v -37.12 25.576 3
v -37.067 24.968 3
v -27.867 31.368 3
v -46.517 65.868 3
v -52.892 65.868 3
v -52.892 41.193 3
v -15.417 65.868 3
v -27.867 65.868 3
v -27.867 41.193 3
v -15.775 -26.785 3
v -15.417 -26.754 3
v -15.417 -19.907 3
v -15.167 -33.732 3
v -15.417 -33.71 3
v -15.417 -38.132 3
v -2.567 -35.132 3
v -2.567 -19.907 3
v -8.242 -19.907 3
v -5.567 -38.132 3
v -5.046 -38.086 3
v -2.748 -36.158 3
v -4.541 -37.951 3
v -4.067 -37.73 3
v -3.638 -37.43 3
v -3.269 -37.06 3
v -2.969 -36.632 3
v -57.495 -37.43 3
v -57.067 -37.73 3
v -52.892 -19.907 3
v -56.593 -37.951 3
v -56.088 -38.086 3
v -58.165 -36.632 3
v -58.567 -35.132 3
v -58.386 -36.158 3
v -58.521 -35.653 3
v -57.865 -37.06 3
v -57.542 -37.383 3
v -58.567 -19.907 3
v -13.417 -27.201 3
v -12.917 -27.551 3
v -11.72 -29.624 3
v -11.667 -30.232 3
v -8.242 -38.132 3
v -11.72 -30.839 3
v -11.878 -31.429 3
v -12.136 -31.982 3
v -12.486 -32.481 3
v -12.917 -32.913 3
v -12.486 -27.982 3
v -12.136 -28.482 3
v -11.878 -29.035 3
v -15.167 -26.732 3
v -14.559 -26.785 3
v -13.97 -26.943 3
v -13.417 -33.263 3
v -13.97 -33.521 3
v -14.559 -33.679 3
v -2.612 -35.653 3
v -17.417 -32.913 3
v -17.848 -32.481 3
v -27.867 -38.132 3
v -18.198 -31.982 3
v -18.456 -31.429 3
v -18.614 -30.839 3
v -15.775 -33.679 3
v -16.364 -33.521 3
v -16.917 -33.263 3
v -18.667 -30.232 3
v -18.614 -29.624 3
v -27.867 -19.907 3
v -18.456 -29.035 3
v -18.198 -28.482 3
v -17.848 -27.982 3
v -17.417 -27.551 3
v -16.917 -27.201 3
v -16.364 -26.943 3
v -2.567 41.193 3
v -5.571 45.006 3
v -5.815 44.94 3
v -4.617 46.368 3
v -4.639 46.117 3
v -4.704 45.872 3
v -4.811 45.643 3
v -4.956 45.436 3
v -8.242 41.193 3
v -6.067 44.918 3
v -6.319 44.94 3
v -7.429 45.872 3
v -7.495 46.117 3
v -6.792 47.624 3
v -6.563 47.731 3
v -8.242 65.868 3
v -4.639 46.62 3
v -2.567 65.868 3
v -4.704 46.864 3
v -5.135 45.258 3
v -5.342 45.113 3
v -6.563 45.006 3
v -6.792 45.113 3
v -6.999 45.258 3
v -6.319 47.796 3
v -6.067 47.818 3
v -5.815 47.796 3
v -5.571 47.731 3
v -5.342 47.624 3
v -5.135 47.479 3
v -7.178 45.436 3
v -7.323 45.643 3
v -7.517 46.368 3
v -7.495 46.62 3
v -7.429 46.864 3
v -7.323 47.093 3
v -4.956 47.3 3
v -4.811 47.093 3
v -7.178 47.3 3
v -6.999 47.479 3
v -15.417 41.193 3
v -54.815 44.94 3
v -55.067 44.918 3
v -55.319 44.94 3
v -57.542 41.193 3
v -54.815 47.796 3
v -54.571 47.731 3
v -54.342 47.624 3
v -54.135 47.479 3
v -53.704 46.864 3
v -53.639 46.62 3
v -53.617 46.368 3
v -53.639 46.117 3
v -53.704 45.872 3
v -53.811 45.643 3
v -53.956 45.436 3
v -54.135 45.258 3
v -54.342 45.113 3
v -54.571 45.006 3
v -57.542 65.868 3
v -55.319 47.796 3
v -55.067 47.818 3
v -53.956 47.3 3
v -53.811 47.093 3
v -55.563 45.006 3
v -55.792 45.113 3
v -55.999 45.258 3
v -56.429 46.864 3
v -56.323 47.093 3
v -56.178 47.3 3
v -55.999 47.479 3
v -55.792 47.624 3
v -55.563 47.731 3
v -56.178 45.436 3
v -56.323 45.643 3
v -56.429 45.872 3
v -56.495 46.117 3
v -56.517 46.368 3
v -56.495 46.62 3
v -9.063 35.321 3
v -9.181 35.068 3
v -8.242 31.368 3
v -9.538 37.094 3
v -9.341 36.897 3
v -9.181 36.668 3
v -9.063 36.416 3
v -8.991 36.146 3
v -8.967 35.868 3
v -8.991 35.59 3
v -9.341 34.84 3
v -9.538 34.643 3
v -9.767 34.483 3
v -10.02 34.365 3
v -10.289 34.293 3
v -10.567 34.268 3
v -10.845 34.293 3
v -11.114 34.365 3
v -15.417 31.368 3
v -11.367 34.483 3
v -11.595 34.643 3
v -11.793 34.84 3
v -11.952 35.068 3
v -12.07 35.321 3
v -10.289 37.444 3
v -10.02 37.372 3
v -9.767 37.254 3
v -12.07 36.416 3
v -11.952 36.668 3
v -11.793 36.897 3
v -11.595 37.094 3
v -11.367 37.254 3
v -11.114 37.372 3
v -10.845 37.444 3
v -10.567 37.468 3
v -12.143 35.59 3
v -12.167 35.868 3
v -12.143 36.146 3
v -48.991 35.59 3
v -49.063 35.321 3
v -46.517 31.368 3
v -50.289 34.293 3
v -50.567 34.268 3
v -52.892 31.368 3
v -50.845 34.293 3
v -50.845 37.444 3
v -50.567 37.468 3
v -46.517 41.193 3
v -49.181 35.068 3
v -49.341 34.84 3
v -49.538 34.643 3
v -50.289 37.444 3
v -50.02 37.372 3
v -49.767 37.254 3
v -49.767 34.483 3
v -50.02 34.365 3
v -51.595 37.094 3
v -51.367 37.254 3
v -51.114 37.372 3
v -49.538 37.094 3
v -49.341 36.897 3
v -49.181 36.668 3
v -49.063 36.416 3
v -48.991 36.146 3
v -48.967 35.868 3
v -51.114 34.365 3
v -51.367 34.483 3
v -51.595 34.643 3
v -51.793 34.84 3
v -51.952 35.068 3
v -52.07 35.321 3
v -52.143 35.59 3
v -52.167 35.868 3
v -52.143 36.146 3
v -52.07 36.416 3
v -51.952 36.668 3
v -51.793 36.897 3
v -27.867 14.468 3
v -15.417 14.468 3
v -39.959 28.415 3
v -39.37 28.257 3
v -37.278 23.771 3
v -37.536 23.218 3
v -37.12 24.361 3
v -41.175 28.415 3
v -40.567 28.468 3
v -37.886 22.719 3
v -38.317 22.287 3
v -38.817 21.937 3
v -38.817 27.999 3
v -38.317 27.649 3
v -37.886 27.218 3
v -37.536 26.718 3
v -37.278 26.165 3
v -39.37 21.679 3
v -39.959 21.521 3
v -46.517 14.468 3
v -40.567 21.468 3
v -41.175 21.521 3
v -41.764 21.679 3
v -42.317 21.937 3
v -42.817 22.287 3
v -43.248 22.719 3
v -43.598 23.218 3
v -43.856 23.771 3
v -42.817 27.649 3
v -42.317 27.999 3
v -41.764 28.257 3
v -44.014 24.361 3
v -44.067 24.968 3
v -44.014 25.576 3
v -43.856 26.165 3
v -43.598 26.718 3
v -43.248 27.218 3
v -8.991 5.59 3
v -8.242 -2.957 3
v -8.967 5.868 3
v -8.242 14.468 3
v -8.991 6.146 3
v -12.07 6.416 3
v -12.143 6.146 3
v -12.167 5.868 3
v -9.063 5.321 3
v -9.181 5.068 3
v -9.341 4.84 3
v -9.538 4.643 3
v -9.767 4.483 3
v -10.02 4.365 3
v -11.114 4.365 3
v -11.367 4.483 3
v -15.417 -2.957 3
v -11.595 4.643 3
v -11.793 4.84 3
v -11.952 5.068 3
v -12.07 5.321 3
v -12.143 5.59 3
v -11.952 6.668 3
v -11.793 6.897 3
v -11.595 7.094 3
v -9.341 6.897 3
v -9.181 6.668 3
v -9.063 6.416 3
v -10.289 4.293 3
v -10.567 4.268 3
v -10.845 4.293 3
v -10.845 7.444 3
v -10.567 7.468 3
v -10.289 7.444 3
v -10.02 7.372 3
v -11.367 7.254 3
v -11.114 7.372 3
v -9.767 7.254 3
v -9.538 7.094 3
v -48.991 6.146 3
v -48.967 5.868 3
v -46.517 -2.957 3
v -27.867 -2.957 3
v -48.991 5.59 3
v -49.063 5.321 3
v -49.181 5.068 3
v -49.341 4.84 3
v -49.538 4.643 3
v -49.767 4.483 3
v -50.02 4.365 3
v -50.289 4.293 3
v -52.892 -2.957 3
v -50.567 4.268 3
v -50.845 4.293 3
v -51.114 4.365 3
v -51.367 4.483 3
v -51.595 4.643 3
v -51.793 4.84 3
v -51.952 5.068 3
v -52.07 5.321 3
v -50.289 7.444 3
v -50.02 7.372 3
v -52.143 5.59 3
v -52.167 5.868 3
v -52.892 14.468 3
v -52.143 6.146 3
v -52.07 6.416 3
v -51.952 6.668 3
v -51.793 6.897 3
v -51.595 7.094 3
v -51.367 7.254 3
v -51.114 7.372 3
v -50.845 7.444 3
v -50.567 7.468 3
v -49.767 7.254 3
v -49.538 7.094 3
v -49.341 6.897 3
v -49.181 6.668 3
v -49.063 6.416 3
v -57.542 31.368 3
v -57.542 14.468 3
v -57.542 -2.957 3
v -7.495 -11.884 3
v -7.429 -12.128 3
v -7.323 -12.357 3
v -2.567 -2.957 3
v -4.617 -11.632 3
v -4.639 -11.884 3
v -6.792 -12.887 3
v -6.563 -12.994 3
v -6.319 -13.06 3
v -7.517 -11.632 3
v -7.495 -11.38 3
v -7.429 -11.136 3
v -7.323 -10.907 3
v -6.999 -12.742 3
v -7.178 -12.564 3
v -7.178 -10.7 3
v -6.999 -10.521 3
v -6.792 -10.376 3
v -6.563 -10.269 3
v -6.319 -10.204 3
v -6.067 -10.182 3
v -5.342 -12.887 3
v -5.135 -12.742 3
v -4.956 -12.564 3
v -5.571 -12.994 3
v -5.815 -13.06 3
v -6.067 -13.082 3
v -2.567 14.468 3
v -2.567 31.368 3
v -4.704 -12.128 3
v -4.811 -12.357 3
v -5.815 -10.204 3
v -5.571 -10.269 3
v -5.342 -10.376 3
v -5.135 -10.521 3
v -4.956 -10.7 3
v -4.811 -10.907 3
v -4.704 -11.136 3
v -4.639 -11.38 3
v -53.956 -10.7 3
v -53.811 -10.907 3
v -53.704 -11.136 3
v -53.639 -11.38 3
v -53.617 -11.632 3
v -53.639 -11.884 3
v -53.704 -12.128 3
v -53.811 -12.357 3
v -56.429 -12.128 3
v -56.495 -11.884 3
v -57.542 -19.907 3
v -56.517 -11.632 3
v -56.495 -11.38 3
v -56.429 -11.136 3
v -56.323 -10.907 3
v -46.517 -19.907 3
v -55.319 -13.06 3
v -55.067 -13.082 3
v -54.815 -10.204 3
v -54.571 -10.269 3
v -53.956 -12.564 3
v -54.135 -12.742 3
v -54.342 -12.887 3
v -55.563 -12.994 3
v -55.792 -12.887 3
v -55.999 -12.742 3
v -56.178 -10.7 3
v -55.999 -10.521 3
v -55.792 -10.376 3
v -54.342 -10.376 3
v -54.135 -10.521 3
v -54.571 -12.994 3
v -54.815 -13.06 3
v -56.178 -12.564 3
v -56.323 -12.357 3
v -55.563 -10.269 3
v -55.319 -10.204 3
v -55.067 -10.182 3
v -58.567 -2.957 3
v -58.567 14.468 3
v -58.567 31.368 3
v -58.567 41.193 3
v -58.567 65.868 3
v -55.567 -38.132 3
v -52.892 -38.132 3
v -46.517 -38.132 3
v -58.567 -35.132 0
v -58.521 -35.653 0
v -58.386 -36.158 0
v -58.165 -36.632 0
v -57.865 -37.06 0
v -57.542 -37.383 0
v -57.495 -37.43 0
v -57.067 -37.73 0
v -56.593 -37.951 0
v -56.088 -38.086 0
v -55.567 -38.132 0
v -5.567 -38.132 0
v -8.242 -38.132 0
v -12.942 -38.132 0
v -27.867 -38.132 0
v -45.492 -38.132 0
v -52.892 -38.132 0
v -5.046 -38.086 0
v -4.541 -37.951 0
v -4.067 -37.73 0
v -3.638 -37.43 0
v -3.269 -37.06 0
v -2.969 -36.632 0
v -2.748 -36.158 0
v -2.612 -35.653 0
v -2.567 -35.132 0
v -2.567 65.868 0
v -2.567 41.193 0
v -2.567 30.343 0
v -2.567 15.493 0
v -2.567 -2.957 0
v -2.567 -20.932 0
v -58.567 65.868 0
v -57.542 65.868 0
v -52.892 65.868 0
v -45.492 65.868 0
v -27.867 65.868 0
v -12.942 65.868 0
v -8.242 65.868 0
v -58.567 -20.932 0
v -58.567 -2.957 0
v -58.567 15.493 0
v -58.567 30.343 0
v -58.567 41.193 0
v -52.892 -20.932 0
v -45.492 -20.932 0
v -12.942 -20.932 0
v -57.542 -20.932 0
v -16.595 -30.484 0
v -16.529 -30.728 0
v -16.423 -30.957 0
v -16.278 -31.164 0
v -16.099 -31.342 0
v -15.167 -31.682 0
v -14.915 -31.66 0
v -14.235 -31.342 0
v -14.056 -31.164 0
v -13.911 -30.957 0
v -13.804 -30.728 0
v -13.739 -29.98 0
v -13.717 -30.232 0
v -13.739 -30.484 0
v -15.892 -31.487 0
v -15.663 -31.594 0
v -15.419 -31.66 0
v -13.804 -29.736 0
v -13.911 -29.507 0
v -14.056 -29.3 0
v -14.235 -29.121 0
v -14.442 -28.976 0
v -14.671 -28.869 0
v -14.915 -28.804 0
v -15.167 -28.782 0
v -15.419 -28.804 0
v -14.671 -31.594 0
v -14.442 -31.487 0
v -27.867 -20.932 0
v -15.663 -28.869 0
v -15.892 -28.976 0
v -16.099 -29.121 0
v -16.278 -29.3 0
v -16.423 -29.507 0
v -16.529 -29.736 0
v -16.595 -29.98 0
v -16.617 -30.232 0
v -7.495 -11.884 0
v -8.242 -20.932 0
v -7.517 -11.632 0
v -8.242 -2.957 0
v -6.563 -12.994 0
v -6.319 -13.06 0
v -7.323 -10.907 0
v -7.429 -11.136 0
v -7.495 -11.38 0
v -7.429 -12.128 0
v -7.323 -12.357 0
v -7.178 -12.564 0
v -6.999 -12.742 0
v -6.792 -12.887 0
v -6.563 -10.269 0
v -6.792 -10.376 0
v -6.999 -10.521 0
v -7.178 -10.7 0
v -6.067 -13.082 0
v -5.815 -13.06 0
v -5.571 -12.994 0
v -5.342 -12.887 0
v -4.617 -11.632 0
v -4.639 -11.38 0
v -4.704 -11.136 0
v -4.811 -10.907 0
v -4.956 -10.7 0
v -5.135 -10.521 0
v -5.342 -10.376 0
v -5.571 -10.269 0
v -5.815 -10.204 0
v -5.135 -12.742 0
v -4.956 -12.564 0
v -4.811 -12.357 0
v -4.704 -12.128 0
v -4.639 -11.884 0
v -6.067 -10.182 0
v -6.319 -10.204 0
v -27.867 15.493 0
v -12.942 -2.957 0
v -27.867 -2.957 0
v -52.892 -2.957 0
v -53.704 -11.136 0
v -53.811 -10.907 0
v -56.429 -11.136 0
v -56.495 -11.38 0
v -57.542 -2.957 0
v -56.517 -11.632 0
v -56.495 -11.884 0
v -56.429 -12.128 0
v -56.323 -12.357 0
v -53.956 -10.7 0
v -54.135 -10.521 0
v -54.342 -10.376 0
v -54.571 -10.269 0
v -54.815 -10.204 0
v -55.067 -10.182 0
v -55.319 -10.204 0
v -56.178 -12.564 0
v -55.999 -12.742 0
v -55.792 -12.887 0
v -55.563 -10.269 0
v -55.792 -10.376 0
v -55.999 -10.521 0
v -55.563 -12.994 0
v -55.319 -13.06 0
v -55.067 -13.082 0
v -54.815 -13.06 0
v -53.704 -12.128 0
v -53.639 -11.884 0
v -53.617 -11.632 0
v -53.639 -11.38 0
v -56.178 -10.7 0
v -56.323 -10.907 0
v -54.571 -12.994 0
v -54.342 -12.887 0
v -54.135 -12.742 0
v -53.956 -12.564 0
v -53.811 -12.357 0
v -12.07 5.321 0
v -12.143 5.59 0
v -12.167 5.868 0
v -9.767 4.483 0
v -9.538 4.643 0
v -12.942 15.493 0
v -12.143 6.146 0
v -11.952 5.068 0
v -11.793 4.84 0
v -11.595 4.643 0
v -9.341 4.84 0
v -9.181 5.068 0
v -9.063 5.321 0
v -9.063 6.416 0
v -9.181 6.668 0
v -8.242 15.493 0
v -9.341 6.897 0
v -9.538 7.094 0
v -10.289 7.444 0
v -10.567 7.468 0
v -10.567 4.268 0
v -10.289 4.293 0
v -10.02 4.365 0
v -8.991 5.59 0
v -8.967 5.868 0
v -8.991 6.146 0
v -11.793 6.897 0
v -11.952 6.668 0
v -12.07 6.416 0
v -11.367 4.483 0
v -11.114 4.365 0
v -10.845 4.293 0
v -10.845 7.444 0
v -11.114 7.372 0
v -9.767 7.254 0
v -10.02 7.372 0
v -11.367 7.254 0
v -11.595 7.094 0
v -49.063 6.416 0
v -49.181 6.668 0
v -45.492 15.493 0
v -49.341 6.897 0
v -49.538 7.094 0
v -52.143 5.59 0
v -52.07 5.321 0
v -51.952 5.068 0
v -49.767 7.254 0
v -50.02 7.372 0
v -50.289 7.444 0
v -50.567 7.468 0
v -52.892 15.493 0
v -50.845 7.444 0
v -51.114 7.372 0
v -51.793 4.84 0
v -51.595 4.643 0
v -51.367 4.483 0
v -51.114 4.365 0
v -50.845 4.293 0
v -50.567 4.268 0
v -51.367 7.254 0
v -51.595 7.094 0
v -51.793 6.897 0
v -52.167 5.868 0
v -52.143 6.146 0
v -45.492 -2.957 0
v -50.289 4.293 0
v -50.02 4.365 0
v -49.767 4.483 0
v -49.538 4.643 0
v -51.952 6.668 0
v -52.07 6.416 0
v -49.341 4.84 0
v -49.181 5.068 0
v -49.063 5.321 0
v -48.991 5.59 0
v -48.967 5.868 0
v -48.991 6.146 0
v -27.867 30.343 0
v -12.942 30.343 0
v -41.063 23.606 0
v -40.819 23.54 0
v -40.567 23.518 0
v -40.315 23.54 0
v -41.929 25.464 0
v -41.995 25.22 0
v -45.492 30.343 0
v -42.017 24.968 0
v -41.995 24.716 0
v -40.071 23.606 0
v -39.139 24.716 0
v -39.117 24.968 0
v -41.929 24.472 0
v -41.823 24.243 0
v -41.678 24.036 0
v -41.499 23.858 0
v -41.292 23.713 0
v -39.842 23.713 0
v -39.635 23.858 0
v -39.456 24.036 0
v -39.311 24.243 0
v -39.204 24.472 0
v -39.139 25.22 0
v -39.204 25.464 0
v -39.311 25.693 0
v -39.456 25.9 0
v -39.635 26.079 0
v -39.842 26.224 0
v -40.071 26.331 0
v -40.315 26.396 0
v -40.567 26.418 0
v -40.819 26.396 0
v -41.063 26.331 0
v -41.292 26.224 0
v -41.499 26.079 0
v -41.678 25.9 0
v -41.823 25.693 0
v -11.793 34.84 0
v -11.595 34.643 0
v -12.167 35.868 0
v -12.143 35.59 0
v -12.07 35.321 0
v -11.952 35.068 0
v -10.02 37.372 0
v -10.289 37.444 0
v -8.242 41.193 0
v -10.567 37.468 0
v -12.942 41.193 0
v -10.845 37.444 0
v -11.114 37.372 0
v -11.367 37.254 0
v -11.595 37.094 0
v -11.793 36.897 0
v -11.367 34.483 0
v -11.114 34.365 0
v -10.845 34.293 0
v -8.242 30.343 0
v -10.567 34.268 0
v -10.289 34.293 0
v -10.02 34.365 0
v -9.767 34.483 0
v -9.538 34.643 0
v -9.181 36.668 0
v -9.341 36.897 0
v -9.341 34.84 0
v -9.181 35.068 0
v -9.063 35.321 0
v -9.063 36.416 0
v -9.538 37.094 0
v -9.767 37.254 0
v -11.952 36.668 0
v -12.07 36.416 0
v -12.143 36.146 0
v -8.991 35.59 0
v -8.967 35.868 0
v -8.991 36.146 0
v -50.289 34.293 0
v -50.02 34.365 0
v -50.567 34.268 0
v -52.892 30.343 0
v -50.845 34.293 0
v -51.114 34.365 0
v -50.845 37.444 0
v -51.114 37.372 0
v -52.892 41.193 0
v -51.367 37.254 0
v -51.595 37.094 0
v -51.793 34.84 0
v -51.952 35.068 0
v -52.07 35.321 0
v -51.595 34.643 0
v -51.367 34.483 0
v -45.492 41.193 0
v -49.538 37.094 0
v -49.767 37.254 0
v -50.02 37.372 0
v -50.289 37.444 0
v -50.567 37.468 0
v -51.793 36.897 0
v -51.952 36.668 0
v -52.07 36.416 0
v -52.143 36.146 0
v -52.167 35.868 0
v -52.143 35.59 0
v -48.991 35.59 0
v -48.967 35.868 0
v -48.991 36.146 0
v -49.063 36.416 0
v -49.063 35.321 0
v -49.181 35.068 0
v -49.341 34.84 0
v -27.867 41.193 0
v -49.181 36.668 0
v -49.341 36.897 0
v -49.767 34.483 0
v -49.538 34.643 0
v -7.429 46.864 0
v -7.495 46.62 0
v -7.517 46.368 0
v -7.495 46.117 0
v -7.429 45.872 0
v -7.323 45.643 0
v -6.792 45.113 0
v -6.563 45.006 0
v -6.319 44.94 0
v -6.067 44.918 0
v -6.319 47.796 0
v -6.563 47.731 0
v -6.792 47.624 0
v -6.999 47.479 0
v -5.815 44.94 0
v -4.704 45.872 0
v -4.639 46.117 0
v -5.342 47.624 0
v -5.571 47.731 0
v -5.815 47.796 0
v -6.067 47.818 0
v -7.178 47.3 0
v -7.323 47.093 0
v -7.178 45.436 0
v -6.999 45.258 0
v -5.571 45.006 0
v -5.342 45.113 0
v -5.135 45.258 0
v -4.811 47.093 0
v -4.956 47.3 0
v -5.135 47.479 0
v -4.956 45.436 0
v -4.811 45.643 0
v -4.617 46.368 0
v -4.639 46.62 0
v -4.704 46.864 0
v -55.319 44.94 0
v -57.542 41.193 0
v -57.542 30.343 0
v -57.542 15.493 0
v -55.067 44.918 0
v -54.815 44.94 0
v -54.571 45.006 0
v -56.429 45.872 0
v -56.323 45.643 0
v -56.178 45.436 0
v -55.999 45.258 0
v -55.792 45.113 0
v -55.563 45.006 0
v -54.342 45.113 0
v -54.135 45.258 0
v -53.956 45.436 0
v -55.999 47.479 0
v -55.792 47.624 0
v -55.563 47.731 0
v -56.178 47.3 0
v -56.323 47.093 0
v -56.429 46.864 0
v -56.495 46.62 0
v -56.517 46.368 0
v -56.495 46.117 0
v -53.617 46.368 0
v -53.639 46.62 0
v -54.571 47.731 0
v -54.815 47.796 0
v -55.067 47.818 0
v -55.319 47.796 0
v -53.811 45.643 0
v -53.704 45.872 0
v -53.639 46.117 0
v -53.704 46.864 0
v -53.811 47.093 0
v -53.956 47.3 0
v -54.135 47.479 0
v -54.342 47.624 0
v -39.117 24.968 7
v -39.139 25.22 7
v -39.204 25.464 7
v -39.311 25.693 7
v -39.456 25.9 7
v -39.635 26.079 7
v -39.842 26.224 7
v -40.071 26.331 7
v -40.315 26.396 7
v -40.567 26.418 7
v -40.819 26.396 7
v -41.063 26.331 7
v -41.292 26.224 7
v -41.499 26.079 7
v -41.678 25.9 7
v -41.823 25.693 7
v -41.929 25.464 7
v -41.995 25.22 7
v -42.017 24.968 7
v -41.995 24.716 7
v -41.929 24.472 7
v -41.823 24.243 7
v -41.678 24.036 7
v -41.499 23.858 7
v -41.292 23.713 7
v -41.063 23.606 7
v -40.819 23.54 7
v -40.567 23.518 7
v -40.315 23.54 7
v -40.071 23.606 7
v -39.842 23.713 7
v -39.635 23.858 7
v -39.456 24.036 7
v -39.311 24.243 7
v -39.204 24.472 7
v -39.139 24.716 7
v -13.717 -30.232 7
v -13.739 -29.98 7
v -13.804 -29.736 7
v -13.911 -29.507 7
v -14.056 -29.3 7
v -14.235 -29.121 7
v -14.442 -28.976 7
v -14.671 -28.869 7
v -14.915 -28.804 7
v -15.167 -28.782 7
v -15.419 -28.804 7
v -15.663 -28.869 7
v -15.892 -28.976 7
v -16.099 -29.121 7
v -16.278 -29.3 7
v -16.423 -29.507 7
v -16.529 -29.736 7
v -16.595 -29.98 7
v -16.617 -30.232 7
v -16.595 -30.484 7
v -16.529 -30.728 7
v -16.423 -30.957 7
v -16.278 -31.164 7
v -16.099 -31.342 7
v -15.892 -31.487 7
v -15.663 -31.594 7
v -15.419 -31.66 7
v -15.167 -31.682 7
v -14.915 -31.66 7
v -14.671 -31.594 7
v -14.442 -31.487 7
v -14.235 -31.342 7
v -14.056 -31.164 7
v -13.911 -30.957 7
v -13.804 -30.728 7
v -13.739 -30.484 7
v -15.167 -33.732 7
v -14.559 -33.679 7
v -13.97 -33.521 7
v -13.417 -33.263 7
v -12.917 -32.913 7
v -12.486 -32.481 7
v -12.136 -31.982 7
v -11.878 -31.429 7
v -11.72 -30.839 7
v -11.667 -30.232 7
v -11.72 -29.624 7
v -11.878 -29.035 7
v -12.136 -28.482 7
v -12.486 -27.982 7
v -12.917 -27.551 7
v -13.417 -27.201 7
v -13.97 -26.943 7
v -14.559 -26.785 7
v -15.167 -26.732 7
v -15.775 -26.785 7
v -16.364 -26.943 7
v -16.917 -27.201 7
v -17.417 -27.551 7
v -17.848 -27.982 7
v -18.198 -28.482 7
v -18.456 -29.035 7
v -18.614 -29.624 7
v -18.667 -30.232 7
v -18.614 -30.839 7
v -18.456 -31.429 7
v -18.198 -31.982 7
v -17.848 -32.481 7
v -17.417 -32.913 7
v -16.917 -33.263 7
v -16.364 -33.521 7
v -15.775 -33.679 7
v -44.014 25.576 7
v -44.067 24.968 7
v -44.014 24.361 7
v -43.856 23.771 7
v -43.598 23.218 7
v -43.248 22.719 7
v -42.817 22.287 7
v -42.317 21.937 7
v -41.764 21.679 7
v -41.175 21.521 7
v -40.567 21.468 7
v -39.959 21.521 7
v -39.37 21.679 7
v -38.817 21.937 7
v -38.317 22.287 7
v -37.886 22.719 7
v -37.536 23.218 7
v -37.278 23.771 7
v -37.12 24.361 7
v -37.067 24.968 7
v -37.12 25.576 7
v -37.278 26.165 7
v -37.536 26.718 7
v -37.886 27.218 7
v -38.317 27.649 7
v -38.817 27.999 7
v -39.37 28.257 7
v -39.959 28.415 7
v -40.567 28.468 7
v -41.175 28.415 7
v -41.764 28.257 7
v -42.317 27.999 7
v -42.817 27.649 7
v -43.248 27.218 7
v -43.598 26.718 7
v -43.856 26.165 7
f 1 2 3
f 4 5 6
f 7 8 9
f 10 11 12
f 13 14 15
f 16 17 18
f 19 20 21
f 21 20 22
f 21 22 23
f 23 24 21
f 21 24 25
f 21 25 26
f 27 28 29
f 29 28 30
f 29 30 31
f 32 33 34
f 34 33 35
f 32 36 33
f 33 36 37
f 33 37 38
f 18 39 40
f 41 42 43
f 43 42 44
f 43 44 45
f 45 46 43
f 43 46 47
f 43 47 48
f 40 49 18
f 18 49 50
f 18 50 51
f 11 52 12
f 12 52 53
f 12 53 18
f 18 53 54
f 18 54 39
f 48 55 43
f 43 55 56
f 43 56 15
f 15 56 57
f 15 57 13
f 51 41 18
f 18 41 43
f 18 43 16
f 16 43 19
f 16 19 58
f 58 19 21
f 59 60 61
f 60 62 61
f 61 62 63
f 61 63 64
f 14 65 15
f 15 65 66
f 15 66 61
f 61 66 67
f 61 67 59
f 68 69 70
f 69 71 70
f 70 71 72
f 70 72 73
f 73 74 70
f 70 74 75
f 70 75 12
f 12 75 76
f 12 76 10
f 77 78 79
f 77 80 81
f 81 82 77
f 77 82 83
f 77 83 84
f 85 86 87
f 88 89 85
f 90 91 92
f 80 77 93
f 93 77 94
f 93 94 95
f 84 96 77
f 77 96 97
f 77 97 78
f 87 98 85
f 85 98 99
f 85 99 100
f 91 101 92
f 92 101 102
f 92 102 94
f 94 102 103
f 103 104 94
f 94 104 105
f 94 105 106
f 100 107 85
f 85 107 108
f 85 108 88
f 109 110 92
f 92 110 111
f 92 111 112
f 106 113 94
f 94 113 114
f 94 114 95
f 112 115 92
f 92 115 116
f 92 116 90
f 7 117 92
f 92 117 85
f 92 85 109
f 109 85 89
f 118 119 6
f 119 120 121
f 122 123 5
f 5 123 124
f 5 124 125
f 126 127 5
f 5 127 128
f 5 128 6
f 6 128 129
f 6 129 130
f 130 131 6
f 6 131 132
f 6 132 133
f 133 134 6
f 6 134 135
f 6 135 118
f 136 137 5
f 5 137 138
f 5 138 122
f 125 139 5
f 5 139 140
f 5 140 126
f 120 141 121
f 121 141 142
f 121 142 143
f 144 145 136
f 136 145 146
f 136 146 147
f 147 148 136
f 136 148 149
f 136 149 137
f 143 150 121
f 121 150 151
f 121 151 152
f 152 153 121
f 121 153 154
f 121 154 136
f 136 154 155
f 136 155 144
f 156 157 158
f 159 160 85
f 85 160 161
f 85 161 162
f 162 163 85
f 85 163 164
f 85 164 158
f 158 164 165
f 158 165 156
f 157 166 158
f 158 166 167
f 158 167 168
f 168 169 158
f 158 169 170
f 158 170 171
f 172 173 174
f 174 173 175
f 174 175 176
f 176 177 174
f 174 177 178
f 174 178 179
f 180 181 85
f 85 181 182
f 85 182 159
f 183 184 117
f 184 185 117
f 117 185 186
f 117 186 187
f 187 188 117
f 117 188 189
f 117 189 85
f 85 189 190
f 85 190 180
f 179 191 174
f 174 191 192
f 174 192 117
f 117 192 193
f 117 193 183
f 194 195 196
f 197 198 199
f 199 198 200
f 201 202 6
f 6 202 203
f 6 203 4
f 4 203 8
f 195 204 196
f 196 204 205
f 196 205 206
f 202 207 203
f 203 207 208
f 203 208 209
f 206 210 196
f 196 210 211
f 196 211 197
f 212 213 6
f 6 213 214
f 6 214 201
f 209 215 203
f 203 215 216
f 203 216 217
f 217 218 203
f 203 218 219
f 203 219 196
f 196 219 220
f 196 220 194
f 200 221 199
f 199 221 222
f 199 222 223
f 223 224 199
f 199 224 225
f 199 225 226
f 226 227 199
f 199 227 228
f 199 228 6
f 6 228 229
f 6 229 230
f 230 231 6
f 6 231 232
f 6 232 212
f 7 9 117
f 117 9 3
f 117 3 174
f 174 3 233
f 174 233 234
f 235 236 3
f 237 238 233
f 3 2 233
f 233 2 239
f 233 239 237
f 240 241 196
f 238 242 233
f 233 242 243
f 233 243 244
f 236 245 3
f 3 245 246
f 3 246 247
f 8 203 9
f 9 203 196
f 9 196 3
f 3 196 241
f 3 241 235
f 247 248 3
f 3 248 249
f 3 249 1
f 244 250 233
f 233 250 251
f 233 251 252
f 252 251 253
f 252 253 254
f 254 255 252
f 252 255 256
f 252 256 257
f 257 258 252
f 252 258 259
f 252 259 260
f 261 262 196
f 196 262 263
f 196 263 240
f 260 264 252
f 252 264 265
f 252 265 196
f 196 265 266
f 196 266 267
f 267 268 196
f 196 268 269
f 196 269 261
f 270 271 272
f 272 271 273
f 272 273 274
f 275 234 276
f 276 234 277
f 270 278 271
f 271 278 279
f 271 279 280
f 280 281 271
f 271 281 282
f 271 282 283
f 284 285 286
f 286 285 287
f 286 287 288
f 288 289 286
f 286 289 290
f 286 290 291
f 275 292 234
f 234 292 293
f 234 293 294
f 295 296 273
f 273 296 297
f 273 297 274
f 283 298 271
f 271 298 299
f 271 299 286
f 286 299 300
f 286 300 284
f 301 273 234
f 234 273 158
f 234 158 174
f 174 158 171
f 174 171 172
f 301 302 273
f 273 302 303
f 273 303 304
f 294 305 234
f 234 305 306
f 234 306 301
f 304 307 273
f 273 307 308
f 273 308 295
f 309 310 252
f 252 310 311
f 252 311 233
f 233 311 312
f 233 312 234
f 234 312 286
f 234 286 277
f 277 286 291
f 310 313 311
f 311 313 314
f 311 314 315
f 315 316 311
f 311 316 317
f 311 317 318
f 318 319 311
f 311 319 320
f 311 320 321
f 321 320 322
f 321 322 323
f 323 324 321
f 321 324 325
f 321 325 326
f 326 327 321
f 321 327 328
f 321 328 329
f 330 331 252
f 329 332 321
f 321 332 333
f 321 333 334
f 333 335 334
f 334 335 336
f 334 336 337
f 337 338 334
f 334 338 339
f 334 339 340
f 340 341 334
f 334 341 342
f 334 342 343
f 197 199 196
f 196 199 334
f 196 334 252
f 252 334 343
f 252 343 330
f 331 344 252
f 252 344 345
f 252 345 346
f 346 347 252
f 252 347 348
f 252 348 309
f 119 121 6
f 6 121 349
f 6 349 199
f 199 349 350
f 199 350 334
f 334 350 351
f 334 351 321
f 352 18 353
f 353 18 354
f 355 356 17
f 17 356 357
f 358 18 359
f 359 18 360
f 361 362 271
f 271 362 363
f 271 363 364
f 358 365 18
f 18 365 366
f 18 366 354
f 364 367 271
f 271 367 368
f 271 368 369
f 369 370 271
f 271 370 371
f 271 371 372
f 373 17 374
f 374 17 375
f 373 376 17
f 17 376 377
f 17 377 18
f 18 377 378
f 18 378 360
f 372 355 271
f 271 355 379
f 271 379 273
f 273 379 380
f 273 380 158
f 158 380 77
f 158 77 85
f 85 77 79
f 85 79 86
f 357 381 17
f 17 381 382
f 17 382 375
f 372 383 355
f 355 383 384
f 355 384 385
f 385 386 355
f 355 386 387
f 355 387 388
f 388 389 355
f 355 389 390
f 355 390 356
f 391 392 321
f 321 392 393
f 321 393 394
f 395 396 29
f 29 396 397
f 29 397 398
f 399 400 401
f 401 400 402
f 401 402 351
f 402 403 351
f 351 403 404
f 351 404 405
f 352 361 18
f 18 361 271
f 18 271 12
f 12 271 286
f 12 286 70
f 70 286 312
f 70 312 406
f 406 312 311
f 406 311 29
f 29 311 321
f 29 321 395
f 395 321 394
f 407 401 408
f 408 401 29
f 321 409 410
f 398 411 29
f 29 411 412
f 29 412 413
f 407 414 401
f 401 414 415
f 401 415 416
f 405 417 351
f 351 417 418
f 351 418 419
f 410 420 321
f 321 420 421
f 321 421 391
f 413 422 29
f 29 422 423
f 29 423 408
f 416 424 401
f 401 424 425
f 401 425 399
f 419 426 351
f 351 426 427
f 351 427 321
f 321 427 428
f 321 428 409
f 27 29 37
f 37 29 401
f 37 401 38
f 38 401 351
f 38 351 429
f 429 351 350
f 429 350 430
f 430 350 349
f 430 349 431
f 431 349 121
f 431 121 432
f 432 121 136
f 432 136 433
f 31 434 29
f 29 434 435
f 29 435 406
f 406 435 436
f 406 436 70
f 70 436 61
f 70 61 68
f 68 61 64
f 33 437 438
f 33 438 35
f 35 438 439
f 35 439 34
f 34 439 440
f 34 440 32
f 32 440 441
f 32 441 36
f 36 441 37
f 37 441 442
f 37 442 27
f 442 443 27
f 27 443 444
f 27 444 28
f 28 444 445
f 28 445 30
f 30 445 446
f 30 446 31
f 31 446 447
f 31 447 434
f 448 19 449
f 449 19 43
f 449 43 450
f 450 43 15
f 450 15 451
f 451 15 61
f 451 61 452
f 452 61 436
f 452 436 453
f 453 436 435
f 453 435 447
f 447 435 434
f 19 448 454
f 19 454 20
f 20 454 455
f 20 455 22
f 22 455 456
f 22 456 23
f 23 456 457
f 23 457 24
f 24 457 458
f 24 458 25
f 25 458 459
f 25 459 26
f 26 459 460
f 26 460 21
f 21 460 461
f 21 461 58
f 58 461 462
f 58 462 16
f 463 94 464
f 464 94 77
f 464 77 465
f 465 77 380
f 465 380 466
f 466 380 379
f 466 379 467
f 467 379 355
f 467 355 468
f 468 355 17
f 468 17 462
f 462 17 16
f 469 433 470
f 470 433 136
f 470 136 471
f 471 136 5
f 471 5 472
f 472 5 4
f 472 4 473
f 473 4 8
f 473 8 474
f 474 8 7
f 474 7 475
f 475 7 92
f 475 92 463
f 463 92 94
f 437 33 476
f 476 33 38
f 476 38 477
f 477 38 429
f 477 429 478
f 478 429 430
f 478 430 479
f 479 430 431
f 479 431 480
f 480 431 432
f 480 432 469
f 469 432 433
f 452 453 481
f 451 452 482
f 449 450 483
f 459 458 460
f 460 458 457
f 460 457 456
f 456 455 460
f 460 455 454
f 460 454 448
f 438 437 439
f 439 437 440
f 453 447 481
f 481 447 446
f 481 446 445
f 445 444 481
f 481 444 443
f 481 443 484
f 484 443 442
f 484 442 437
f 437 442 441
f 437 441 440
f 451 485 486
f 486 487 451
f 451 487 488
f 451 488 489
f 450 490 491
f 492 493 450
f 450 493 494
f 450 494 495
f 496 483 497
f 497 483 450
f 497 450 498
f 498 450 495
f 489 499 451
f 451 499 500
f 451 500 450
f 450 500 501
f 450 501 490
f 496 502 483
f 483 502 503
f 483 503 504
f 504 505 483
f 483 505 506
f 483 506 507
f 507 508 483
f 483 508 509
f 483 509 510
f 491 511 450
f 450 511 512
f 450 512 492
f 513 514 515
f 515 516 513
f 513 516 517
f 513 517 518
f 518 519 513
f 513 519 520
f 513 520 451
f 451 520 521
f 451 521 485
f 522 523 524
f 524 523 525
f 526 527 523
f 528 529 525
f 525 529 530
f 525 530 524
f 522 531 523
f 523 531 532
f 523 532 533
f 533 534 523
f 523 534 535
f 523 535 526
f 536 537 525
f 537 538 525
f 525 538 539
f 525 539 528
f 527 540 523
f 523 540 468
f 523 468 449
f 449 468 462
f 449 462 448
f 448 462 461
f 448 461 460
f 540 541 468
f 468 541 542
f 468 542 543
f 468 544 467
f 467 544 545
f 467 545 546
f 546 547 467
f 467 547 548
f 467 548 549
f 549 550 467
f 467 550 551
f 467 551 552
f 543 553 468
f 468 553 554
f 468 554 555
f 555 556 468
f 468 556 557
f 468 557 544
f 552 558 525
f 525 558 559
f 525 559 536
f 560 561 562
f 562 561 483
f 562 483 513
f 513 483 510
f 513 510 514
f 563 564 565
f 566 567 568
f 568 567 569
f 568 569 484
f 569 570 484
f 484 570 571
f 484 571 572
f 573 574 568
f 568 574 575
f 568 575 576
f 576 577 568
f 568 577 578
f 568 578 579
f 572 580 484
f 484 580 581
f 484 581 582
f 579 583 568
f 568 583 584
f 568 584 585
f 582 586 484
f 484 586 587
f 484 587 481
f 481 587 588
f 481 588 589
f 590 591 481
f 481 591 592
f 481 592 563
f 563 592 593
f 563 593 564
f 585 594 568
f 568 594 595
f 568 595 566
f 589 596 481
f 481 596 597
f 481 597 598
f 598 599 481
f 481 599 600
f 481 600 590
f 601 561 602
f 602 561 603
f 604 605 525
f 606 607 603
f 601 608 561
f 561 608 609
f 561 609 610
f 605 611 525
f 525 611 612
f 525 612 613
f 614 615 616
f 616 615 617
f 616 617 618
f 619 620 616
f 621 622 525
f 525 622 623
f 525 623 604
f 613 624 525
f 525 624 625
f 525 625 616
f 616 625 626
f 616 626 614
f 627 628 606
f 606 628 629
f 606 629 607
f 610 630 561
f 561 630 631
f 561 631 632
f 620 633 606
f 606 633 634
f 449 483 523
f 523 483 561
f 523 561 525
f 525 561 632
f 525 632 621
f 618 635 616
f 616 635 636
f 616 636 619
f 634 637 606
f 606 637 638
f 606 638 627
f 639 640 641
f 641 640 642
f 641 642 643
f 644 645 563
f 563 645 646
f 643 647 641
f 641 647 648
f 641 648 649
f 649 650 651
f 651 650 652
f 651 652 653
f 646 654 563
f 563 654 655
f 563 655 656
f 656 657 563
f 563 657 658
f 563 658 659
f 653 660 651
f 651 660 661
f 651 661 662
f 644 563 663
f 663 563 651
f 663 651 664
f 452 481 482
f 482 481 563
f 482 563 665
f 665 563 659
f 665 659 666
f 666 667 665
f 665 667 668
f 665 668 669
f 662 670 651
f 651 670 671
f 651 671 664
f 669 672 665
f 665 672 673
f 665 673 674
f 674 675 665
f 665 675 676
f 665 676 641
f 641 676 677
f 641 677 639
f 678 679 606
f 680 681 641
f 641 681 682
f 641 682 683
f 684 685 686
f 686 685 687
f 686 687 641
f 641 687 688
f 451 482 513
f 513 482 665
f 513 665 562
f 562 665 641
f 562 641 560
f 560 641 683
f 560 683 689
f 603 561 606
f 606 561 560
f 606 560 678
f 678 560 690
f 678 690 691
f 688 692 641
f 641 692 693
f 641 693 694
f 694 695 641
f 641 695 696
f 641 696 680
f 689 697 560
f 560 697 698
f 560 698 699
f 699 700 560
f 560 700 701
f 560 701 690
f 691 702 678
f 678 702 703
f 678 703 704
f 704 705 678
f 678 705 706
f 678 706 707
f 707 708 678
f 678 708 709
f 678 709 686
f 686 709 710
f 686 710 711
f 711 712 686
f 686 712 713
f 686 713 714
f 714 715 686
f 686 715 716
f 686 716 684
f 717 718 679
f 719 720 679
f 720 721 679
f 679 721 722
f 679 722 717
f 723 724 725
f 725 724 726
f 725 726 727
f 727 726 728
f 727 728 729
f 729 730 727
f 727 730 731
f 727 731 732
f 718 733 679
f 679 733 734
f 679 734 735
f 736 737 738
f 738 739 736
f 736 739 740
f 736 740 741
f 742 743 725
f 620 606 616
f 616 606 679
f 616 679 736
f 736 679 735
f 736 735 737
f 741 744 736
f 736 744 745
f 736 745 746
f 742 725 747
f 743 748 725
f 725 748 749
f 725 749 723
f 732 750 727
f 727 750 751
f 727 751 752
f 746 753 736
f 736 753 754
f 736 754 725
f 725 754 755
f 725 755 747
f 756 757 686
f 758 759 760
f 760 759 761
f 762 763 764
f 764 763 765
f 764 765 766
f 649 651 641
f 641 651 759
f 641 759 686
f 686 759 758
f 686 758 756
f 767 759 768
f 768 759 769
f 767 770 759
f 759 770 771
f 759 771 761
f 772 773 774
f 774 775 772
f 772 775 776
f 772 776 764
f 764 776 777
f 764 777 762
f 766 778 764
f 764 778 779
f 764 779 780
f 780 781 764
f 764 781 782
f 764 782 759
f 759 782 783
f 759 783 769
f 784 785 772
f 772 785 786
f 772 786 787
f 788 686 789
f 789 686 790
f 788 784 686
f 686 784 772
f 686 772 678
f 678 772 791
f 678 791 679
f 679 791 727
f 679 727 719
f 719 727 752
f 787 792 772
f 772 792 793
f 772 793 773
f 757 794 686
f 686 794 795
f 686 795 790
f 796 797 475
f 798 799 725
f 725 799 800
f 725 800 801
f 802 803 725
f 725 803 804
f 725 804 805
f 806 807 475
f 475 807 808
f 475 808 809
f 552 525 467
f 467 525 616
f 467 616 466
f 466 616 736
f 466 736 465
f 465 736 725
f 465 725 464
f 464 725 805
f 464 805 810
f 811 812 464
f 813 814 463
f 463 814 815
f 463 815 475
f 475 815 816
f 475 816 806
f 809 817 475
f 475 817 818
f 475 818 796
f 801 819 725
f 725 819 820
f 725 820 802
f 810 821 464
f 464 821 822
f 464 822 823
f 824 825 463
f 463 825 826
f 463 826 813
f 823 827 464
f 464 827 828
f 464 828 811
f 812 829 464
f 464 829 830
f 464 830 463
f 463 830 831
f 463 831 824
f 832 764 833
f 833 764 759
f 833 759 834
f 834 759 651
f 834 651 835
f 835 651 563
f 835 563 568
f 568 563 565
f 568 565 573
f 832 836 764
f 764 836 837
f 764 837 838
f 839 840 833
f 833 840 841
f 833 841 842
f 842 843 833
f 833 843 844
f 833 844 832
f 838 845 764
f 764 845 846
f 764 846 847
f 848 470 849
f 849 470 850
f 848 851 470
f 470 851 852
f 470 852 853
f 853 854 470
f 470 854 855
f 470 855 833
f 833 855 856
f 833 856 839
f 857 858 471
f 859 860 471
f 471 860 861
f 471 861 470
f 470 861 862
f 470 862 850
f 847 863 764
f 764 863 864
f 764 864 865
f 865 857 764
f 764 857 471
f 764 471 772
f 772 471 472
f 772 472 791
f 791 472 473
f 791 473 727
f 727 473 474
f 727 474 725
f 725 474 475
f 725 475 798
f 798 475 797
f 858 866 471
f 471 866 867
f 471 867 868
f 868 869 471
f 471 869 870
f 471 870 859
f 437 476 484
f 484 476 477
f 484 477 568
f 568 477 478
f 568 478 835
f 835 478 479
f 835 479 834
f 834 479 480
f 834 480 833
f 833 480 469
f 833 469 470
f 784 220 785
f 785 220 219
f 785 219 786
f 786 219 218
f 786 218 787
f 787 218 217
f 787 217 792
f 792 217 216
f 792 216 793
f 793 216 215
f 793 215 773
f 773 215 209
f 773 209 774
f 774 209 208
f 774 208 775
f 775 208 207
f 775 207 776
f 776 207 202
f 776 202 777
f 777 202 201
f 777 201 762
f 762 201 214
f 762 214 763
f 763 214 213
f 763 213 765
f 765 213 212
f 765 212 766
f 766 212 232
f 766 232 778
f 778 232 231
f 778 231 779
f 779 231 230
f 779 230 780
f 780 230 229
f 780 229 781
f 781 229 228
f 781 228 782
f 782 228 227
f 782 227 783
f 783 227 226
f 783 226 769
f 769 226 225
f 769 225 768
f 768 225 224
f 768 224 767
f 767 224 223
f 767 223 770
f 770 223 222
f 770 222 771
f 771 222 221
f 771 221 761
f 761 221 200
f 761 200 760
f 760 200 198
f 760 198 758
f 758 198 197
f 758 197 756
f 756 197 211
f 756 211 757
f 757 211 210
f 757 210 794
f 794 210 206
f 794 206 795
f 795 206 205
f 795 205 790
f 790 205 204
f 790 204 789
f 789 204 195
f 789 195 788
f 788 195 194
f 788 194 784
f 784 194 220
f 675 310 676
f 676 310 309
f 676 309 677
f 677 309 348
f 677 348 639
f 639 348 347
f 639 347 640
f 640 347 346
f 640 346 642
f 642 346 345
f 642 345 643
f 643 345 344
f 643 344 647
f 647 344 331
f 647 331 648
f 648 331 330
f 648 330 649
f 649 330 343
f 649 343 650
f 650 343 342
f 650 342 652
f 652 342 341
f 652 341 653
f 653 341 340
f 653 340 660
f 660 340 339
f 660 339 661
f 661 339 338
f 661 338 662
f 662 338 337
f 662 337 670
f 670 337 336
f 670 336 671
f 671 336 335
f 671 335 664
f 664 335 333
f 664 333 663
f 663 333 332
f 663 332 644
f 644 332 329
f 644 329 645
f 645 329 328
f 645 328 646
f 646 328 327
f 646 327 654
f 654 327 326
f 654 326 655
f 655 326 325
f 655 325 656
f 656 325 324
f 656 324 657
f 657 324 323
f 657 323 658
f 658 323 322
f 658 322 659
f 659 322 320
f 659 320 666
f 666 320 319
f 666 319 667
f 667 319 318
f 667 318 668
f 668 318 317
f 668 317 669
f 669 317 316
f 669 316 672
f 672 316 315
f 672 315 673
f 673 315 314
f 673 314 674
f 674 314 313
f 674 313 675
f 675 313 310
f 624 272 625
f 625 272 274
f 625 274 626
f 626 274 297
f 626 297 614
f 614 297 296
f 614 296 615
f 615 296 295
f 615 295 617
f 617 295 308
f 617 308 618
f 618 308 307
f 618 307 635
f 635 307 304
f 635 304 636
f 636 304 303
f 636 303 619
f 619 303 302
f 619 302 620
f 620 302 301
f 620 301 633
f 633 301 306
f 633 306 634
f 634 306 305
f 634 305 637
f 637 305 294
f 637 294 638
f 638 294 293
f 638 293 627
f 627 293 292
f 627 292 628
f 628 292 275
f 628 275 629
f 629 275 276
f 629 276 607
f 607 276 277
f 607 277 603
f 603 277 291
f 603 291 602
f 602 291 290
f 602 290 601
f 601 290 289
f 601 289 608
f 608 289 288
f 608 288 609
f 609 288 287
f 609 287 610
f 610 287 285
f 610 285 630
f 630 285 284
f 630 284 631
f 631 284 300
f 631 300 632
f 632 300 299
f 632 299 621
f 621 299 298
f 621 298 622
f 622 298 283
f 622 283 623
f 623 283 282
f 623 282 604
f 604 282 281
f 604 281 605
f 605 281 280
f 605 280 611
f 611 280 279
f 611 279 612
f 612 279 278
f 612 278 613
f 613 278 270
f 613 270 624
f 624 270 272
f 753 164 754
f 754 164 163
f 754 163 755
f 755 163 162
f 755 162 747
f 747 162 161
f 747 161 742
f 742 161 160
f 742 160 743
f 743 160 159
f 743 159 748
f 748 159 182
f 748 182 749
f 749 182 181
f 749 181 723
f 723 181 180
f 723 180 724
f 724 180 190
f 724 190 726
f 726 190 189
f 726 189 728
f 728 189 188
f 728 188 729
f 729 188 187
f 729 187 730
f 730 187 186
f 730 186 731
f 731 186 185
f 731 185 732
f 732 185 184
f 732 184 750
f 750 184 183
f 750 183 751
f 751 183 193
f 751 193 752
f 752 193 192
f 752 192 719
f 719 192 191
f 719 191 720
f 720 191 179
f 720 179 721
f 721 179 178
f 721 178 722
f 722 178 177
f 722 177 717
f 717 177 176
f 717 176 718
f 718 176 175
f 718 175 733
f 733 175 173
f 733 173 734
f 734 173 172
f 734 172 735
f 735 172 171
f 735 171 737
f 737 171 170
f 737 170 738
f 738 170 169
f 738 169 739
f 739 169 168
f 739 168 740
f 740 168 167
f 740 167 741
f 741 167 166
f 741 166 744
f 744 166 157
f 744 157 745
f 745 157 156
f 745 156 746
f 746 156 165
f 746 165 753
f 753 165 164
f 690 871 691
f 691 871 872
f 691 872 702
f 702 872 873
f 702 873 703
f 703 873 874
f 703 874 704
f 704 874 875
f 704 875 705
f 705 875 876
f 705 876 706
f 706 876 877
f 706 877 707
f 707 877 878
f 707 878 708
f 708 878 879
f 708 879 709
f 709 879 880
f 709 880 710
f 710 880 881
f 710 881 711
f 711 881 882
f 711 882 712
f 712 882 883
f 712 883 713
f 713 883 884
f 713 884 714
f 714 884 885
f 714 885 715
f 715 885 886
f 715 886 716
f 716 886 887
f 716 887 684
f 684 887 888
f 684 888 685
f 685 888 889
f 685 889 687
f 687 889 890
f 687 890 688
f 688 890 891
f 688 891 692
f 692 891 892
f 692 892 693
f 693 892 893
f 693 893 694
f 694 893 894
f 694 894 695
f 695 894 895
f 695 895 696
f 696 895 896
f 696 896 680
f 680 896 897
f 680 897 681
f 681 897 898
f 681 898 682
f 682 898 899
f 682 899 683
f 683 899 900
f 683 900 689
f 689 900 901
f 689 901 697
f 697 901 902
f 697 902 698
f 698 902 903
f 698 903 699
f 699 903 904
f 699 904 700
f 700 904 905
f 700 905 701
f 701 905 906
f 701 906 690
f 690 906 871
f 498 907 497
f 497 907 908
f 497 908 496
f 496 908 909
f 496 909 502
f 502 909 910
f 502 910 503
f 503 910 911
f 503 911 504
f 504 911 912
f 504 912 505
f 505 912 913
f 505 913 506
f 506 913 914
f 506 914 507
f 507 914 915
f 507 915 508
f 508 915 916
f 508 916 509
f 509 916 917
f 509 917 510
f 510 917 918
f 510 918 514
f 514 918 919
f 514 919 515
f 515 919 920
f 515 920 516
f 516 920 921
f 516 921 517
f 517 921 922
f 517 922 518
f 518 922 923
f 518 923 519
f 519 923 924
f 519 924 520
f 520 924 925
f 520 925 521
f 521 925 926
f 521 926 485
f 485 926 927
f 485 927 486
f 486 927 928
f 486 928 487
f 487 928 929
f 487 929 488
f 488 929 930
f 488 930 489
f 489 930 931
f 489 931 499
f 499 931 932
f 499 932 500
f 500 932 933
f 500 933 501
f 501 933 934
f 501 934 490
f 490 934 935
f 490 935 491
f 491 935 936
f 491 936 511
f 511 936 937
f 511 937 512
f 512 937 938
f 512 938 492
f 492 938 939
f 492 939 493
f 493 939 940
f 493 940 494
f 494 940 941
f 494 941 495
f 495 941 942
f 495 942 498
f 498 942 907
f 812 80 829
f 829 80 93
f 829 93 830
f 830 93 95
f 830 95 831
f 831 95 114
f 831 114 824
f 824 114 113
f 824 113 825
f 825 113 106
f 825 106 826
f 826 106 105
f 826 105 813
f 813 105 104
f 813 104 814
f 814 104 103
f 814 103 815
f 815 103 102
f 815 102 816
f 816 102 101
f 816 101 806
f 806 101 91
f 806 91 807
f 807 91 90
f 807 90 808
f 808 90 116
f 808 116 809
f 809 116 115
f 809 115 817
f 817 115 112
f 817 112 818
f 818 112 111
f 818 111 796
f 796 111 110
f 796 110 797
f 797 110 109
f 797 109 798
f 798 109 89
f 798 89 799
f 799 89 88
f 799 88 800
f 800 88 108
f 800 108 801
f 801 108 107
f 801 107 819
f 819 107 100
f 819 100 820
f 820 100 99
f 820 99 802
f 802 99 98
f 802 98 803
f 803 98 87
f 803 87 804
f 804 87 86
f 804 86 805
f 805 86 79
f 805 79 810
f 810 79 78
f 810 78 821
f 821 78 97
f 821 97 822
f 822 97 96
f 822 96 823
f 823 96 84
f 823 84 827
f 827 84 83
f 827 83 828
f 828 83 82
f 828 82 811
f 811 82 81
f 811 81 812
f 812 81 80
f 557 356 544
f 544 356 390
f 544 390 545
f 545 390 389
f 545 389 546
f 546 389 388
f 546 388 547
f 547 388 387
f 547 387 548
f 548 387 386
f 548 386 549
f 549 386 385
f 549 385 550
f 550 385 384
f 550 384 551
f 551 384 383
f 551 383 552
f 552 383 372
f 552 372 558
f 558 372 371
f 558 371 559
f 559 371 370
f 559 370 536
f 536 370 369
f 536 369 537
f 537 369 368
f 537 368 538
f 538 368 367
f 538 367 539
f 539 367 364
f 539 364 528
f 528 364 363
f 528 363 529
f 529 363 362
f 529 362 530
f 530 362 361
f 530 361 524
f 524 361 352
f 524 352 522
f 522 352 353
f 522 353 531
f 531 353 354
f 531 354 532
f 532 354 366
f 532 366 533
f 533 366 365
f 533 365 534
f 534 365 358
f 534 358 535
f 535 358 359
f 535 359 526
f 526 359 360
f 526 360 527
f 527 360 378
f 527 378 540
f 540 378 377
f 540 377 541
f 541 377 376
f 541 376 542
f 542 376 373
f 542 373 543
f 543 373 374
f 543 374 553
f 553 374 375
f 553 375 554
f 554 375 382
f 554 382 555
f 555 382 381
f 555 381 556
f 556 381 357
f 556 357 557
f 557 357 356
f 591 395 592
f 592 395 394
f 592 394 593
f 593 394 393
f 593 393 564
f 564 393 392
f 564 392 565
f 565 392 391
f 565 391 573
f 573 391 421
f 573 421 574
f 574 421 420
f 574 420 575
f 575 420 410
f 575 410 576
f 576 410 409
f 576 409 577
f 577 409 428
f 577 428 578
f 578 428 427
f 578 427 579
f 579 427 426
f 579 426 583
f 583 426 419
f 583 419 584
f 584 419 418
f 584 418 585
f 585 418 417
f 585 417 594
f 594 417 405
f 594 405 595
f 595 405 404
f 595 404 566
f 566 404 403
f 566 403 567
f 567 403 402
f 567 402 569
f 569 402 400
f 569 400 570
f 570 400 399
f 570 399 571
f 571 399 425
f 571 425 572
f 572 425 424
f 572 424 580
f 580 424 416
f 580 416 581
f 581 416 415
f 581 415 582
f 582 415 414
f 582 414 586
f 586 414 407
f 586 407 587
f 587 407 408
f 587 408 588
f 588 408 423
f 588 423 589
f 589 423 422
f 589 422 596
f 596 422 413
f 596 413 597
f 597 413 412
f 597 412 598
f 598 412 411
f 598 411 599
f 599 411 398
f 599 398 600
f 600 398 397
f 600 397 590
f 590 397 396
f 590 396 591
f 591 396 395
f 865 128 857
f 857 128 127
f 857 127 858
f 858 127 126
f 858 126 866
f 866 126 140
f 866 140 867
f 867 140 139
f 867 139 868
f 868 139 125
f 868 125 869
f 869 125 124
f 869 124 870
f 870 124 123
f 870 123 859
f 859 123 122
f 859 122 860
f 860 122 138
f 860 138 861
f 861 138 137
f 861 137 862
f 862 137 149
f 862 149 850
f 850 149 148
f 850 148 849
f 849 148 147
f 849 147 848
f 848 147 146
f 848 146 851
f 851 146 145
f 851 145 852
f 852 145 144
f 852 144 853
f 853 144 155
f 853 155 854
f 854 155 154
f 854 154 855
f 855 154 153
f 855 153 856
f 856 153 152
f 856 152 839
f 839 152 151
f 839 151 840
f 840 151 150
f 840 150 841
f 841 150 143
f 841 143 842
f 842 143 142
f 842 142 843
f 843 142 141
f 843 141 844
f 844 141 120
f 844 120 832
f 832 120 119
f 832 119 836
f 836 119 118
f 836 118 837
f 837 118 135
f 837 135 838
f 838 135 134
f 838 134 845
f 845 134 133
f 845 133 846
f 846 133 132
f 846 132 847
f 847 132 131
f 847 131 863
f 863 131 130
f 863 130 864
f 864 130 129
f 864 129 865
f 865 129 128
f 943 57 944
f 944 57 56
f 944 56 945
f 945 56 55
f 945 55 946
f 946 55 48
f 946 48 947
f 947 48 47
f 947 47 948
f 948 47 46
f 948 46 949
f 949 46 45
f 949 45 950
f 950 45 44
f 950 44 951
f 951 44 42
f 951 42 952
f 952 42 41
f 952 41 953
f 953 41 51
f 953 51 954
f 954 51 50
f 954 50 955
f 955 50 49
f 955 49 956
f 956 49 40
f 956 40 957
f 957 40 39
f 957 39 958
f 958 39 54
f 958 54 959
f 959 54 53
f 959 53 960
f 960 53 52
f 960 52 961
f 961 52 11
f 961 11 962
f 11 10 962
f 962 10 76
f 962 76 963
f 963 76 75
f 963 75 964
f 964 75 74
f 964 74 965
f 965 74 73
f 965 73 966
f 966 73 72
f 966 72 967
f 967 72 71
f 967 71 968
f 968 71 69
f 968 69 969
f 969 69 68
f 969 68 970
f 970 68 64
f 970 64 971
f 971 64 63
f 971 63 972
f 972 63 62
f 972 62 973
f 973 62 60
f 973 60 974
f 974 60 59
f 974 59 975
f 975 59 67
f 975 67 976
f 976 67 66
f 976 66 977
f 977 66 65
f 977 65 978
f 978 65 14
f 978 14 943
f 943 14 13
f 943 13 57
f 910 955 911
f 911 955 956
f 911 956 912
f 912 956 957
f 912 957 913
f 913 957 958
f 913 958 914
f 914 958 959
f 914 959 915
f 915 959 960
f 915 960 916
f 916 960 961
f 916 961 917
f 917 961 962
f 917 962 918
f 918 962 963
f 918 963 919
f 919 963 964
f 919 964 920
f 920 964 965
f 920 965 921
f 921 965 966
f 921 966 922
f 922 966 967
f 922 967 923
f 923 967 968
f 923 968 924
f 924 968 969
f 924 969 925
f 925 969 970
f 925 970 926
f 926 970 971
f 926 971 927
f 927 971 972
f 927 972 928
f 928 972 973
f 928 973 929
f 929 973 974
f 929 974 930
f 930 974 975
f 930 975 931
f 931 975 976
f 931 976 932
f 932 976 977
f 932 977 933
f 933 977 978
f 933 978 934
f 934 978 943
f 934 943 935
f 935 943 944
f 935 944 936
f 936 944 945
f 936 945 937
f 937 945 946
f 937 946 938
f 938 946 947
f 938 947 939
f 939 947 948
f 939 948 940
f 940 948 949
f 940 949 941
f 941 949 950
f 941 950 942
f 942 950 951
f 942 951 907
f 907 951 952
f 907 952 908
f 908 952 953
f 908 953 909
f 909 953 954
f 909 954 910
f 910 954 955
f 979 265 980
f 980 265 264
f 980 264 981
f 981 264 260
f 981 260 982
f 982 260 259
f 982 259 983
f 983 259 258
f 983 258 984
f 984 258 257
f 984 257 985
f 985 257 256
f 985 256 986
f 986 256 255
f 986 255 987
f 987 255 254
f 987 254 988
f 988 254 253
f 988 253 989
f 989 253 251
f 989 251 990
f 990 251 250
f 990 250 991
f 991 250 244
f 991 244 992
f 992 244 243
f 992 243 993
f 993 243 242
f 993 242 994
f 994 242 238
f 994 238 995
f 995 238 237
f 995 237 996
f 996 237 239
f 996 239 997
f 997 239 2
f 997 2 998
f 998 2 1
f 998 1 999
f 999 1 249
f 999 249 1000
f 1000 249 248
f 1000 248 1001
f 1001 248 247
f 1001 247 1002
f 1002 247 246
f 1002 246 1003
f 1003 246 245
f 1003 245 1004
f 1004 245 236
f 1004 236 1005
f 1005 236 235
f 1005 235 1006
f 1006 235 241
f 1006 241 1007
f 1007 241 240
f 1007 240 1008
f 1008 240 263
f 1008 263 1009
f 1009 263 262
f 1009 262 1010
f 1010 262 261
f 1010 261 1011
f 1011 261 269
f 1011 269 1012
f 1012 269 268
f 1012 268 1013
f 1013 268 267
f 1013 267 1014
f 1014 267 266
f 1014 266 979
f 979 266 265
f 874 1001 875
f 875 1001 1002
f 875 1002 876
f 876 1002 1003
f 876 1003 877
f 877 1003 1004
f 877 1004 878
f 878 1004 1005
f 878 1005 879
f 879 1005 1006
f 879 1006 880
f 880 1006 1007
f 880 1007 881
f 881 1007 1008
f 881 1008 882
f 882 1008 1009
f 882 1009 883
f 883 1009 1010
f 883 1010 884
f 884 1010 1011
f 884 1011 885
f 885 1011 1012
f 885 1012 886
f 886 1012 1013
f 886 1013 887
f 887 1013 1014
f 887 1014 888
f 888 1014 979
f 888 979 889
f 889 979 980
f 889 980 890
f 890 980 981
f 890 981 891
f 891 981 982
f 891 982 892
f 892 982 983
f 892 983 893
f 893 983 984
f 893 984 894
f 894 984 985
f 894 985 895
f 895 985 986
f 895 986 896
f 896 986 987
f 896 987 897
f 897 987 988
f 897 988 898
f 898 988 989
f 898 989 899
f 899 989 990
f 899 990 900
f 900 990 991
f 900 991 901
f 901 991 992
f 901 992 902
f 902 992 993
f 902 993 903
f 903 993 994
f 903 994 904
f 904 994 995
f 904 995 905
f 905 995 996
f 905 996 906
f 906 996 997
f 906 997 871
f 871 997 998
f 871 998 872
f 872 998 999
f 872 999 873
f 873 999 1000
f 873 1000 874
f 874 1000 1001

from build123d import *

# Parameters (mm, degrees)
BOSS_EXTRUDE1_DEPTH = 3
SKETCH3_R           = 1.6
SKETCH3_R_2         = 1.45
CUT_EXTRUDE1_DEPTH  = 89.191303006
SKETCH4_R           = 3.5
SKETCH4_R_2         = 1.45
BOSS_EXTRUDE2_DEPTH = 4


with BuildPart() as part:
    # Sketch2 → Boss-Extrude1 (new body)
    with BuildSketch(Plane.XY):
        with BuildLine():
            Line((-55.566838563, -38.131712133), (-5.566838563, -38.131712133))
            ThreePointArc((-5.566838563, -38.131712133), (-3.44551822, -37.253032477), (-2.566838563, -35.131712133))
            Line((-2.566838563, -35.131712133), (-2.566838563, 65.868287867))
            Line((-2.566838563, 65.868287867), (-58.566838563, 65.868287867))
            Line((-58.566838563, 65.868287867), (-58.566838563, -35.131712133))
            ThreePointArc((-58.566838563, -35.131712133), (-57.688158907, -37.253032477), (-55.566838563, -38.131712133))
        make_face()
    extrude(amount=BOSS_EXTRUDE1_DEPTH)

    # Sketch3 → Cut-Extrude1 (cut, through all)
    with BuildSketch(Plane.XY.offset(3)):
        with Locations((-50.566838563, 35.868287867)):
            Circle(SKETCH3_R)
        with Locations((-50.566838563, 5.868287867)):
            Circle(SKETCH3_R)
        with Locations(Location((-10.566838563, 5.868287867, 0), (0, 0, 180))):
            Circle(SKETCH3_R)
        with Locations(Location((-10.566838563, 35.868287867, 0), (0, 0, 180))):
            Circle(SKETCH3_R)
        with Locations((-40.566838563, 24.968287867)):
            Circle(SKETCH3_R_2)
        with Locations((-15.166838563, -30.231712133)):
            Circle(SKETCH3_R_2)
        with Locations((-6.066838563, 46.368287867)):
            Circle(SKETCH3_R_2)
        with Locations((-6.066838563, -11.631712133)):
            Circle(SKETCH3_R_2)
        with Locations(Location((-55.066838563, -11.631712133, 0), (0, 0, 180))):
            Circle(SKETCH3_R_2)
        with Locations(Location((-55.066838563, 46.368287867, 0), (0, 0, 180))):
            Circle(SKETCH3_R_2)
    extrude(amount=-CUT_EXTRUDE1_DEPTH, mode=Mode.SUBTRACT)

    # Sketch4 → Boss-Extrude2 (add)
    with BuildSketch(Plane.XY.offset(3)):
        with Locations((-40.566838563, 24.968287867)):
            Circle(SKETCH4_R)
        with Locations((-40.566838563, 24.968287867)):
            Circle(SKETCH4_R_2, mode=Mode.SUBTRACT)
        with Locations((-15.166838563, -30.231712133)):
            Circle(SKETCH4_R)
        with Locations((-15.166838563, -30.231712133)):
            Circle(SKETCH4_R_2, mode=Mode.SUBTRACT)
    extrude(amount=BOSS_EXTRUDE2_DEPTH)


solid = part.part
